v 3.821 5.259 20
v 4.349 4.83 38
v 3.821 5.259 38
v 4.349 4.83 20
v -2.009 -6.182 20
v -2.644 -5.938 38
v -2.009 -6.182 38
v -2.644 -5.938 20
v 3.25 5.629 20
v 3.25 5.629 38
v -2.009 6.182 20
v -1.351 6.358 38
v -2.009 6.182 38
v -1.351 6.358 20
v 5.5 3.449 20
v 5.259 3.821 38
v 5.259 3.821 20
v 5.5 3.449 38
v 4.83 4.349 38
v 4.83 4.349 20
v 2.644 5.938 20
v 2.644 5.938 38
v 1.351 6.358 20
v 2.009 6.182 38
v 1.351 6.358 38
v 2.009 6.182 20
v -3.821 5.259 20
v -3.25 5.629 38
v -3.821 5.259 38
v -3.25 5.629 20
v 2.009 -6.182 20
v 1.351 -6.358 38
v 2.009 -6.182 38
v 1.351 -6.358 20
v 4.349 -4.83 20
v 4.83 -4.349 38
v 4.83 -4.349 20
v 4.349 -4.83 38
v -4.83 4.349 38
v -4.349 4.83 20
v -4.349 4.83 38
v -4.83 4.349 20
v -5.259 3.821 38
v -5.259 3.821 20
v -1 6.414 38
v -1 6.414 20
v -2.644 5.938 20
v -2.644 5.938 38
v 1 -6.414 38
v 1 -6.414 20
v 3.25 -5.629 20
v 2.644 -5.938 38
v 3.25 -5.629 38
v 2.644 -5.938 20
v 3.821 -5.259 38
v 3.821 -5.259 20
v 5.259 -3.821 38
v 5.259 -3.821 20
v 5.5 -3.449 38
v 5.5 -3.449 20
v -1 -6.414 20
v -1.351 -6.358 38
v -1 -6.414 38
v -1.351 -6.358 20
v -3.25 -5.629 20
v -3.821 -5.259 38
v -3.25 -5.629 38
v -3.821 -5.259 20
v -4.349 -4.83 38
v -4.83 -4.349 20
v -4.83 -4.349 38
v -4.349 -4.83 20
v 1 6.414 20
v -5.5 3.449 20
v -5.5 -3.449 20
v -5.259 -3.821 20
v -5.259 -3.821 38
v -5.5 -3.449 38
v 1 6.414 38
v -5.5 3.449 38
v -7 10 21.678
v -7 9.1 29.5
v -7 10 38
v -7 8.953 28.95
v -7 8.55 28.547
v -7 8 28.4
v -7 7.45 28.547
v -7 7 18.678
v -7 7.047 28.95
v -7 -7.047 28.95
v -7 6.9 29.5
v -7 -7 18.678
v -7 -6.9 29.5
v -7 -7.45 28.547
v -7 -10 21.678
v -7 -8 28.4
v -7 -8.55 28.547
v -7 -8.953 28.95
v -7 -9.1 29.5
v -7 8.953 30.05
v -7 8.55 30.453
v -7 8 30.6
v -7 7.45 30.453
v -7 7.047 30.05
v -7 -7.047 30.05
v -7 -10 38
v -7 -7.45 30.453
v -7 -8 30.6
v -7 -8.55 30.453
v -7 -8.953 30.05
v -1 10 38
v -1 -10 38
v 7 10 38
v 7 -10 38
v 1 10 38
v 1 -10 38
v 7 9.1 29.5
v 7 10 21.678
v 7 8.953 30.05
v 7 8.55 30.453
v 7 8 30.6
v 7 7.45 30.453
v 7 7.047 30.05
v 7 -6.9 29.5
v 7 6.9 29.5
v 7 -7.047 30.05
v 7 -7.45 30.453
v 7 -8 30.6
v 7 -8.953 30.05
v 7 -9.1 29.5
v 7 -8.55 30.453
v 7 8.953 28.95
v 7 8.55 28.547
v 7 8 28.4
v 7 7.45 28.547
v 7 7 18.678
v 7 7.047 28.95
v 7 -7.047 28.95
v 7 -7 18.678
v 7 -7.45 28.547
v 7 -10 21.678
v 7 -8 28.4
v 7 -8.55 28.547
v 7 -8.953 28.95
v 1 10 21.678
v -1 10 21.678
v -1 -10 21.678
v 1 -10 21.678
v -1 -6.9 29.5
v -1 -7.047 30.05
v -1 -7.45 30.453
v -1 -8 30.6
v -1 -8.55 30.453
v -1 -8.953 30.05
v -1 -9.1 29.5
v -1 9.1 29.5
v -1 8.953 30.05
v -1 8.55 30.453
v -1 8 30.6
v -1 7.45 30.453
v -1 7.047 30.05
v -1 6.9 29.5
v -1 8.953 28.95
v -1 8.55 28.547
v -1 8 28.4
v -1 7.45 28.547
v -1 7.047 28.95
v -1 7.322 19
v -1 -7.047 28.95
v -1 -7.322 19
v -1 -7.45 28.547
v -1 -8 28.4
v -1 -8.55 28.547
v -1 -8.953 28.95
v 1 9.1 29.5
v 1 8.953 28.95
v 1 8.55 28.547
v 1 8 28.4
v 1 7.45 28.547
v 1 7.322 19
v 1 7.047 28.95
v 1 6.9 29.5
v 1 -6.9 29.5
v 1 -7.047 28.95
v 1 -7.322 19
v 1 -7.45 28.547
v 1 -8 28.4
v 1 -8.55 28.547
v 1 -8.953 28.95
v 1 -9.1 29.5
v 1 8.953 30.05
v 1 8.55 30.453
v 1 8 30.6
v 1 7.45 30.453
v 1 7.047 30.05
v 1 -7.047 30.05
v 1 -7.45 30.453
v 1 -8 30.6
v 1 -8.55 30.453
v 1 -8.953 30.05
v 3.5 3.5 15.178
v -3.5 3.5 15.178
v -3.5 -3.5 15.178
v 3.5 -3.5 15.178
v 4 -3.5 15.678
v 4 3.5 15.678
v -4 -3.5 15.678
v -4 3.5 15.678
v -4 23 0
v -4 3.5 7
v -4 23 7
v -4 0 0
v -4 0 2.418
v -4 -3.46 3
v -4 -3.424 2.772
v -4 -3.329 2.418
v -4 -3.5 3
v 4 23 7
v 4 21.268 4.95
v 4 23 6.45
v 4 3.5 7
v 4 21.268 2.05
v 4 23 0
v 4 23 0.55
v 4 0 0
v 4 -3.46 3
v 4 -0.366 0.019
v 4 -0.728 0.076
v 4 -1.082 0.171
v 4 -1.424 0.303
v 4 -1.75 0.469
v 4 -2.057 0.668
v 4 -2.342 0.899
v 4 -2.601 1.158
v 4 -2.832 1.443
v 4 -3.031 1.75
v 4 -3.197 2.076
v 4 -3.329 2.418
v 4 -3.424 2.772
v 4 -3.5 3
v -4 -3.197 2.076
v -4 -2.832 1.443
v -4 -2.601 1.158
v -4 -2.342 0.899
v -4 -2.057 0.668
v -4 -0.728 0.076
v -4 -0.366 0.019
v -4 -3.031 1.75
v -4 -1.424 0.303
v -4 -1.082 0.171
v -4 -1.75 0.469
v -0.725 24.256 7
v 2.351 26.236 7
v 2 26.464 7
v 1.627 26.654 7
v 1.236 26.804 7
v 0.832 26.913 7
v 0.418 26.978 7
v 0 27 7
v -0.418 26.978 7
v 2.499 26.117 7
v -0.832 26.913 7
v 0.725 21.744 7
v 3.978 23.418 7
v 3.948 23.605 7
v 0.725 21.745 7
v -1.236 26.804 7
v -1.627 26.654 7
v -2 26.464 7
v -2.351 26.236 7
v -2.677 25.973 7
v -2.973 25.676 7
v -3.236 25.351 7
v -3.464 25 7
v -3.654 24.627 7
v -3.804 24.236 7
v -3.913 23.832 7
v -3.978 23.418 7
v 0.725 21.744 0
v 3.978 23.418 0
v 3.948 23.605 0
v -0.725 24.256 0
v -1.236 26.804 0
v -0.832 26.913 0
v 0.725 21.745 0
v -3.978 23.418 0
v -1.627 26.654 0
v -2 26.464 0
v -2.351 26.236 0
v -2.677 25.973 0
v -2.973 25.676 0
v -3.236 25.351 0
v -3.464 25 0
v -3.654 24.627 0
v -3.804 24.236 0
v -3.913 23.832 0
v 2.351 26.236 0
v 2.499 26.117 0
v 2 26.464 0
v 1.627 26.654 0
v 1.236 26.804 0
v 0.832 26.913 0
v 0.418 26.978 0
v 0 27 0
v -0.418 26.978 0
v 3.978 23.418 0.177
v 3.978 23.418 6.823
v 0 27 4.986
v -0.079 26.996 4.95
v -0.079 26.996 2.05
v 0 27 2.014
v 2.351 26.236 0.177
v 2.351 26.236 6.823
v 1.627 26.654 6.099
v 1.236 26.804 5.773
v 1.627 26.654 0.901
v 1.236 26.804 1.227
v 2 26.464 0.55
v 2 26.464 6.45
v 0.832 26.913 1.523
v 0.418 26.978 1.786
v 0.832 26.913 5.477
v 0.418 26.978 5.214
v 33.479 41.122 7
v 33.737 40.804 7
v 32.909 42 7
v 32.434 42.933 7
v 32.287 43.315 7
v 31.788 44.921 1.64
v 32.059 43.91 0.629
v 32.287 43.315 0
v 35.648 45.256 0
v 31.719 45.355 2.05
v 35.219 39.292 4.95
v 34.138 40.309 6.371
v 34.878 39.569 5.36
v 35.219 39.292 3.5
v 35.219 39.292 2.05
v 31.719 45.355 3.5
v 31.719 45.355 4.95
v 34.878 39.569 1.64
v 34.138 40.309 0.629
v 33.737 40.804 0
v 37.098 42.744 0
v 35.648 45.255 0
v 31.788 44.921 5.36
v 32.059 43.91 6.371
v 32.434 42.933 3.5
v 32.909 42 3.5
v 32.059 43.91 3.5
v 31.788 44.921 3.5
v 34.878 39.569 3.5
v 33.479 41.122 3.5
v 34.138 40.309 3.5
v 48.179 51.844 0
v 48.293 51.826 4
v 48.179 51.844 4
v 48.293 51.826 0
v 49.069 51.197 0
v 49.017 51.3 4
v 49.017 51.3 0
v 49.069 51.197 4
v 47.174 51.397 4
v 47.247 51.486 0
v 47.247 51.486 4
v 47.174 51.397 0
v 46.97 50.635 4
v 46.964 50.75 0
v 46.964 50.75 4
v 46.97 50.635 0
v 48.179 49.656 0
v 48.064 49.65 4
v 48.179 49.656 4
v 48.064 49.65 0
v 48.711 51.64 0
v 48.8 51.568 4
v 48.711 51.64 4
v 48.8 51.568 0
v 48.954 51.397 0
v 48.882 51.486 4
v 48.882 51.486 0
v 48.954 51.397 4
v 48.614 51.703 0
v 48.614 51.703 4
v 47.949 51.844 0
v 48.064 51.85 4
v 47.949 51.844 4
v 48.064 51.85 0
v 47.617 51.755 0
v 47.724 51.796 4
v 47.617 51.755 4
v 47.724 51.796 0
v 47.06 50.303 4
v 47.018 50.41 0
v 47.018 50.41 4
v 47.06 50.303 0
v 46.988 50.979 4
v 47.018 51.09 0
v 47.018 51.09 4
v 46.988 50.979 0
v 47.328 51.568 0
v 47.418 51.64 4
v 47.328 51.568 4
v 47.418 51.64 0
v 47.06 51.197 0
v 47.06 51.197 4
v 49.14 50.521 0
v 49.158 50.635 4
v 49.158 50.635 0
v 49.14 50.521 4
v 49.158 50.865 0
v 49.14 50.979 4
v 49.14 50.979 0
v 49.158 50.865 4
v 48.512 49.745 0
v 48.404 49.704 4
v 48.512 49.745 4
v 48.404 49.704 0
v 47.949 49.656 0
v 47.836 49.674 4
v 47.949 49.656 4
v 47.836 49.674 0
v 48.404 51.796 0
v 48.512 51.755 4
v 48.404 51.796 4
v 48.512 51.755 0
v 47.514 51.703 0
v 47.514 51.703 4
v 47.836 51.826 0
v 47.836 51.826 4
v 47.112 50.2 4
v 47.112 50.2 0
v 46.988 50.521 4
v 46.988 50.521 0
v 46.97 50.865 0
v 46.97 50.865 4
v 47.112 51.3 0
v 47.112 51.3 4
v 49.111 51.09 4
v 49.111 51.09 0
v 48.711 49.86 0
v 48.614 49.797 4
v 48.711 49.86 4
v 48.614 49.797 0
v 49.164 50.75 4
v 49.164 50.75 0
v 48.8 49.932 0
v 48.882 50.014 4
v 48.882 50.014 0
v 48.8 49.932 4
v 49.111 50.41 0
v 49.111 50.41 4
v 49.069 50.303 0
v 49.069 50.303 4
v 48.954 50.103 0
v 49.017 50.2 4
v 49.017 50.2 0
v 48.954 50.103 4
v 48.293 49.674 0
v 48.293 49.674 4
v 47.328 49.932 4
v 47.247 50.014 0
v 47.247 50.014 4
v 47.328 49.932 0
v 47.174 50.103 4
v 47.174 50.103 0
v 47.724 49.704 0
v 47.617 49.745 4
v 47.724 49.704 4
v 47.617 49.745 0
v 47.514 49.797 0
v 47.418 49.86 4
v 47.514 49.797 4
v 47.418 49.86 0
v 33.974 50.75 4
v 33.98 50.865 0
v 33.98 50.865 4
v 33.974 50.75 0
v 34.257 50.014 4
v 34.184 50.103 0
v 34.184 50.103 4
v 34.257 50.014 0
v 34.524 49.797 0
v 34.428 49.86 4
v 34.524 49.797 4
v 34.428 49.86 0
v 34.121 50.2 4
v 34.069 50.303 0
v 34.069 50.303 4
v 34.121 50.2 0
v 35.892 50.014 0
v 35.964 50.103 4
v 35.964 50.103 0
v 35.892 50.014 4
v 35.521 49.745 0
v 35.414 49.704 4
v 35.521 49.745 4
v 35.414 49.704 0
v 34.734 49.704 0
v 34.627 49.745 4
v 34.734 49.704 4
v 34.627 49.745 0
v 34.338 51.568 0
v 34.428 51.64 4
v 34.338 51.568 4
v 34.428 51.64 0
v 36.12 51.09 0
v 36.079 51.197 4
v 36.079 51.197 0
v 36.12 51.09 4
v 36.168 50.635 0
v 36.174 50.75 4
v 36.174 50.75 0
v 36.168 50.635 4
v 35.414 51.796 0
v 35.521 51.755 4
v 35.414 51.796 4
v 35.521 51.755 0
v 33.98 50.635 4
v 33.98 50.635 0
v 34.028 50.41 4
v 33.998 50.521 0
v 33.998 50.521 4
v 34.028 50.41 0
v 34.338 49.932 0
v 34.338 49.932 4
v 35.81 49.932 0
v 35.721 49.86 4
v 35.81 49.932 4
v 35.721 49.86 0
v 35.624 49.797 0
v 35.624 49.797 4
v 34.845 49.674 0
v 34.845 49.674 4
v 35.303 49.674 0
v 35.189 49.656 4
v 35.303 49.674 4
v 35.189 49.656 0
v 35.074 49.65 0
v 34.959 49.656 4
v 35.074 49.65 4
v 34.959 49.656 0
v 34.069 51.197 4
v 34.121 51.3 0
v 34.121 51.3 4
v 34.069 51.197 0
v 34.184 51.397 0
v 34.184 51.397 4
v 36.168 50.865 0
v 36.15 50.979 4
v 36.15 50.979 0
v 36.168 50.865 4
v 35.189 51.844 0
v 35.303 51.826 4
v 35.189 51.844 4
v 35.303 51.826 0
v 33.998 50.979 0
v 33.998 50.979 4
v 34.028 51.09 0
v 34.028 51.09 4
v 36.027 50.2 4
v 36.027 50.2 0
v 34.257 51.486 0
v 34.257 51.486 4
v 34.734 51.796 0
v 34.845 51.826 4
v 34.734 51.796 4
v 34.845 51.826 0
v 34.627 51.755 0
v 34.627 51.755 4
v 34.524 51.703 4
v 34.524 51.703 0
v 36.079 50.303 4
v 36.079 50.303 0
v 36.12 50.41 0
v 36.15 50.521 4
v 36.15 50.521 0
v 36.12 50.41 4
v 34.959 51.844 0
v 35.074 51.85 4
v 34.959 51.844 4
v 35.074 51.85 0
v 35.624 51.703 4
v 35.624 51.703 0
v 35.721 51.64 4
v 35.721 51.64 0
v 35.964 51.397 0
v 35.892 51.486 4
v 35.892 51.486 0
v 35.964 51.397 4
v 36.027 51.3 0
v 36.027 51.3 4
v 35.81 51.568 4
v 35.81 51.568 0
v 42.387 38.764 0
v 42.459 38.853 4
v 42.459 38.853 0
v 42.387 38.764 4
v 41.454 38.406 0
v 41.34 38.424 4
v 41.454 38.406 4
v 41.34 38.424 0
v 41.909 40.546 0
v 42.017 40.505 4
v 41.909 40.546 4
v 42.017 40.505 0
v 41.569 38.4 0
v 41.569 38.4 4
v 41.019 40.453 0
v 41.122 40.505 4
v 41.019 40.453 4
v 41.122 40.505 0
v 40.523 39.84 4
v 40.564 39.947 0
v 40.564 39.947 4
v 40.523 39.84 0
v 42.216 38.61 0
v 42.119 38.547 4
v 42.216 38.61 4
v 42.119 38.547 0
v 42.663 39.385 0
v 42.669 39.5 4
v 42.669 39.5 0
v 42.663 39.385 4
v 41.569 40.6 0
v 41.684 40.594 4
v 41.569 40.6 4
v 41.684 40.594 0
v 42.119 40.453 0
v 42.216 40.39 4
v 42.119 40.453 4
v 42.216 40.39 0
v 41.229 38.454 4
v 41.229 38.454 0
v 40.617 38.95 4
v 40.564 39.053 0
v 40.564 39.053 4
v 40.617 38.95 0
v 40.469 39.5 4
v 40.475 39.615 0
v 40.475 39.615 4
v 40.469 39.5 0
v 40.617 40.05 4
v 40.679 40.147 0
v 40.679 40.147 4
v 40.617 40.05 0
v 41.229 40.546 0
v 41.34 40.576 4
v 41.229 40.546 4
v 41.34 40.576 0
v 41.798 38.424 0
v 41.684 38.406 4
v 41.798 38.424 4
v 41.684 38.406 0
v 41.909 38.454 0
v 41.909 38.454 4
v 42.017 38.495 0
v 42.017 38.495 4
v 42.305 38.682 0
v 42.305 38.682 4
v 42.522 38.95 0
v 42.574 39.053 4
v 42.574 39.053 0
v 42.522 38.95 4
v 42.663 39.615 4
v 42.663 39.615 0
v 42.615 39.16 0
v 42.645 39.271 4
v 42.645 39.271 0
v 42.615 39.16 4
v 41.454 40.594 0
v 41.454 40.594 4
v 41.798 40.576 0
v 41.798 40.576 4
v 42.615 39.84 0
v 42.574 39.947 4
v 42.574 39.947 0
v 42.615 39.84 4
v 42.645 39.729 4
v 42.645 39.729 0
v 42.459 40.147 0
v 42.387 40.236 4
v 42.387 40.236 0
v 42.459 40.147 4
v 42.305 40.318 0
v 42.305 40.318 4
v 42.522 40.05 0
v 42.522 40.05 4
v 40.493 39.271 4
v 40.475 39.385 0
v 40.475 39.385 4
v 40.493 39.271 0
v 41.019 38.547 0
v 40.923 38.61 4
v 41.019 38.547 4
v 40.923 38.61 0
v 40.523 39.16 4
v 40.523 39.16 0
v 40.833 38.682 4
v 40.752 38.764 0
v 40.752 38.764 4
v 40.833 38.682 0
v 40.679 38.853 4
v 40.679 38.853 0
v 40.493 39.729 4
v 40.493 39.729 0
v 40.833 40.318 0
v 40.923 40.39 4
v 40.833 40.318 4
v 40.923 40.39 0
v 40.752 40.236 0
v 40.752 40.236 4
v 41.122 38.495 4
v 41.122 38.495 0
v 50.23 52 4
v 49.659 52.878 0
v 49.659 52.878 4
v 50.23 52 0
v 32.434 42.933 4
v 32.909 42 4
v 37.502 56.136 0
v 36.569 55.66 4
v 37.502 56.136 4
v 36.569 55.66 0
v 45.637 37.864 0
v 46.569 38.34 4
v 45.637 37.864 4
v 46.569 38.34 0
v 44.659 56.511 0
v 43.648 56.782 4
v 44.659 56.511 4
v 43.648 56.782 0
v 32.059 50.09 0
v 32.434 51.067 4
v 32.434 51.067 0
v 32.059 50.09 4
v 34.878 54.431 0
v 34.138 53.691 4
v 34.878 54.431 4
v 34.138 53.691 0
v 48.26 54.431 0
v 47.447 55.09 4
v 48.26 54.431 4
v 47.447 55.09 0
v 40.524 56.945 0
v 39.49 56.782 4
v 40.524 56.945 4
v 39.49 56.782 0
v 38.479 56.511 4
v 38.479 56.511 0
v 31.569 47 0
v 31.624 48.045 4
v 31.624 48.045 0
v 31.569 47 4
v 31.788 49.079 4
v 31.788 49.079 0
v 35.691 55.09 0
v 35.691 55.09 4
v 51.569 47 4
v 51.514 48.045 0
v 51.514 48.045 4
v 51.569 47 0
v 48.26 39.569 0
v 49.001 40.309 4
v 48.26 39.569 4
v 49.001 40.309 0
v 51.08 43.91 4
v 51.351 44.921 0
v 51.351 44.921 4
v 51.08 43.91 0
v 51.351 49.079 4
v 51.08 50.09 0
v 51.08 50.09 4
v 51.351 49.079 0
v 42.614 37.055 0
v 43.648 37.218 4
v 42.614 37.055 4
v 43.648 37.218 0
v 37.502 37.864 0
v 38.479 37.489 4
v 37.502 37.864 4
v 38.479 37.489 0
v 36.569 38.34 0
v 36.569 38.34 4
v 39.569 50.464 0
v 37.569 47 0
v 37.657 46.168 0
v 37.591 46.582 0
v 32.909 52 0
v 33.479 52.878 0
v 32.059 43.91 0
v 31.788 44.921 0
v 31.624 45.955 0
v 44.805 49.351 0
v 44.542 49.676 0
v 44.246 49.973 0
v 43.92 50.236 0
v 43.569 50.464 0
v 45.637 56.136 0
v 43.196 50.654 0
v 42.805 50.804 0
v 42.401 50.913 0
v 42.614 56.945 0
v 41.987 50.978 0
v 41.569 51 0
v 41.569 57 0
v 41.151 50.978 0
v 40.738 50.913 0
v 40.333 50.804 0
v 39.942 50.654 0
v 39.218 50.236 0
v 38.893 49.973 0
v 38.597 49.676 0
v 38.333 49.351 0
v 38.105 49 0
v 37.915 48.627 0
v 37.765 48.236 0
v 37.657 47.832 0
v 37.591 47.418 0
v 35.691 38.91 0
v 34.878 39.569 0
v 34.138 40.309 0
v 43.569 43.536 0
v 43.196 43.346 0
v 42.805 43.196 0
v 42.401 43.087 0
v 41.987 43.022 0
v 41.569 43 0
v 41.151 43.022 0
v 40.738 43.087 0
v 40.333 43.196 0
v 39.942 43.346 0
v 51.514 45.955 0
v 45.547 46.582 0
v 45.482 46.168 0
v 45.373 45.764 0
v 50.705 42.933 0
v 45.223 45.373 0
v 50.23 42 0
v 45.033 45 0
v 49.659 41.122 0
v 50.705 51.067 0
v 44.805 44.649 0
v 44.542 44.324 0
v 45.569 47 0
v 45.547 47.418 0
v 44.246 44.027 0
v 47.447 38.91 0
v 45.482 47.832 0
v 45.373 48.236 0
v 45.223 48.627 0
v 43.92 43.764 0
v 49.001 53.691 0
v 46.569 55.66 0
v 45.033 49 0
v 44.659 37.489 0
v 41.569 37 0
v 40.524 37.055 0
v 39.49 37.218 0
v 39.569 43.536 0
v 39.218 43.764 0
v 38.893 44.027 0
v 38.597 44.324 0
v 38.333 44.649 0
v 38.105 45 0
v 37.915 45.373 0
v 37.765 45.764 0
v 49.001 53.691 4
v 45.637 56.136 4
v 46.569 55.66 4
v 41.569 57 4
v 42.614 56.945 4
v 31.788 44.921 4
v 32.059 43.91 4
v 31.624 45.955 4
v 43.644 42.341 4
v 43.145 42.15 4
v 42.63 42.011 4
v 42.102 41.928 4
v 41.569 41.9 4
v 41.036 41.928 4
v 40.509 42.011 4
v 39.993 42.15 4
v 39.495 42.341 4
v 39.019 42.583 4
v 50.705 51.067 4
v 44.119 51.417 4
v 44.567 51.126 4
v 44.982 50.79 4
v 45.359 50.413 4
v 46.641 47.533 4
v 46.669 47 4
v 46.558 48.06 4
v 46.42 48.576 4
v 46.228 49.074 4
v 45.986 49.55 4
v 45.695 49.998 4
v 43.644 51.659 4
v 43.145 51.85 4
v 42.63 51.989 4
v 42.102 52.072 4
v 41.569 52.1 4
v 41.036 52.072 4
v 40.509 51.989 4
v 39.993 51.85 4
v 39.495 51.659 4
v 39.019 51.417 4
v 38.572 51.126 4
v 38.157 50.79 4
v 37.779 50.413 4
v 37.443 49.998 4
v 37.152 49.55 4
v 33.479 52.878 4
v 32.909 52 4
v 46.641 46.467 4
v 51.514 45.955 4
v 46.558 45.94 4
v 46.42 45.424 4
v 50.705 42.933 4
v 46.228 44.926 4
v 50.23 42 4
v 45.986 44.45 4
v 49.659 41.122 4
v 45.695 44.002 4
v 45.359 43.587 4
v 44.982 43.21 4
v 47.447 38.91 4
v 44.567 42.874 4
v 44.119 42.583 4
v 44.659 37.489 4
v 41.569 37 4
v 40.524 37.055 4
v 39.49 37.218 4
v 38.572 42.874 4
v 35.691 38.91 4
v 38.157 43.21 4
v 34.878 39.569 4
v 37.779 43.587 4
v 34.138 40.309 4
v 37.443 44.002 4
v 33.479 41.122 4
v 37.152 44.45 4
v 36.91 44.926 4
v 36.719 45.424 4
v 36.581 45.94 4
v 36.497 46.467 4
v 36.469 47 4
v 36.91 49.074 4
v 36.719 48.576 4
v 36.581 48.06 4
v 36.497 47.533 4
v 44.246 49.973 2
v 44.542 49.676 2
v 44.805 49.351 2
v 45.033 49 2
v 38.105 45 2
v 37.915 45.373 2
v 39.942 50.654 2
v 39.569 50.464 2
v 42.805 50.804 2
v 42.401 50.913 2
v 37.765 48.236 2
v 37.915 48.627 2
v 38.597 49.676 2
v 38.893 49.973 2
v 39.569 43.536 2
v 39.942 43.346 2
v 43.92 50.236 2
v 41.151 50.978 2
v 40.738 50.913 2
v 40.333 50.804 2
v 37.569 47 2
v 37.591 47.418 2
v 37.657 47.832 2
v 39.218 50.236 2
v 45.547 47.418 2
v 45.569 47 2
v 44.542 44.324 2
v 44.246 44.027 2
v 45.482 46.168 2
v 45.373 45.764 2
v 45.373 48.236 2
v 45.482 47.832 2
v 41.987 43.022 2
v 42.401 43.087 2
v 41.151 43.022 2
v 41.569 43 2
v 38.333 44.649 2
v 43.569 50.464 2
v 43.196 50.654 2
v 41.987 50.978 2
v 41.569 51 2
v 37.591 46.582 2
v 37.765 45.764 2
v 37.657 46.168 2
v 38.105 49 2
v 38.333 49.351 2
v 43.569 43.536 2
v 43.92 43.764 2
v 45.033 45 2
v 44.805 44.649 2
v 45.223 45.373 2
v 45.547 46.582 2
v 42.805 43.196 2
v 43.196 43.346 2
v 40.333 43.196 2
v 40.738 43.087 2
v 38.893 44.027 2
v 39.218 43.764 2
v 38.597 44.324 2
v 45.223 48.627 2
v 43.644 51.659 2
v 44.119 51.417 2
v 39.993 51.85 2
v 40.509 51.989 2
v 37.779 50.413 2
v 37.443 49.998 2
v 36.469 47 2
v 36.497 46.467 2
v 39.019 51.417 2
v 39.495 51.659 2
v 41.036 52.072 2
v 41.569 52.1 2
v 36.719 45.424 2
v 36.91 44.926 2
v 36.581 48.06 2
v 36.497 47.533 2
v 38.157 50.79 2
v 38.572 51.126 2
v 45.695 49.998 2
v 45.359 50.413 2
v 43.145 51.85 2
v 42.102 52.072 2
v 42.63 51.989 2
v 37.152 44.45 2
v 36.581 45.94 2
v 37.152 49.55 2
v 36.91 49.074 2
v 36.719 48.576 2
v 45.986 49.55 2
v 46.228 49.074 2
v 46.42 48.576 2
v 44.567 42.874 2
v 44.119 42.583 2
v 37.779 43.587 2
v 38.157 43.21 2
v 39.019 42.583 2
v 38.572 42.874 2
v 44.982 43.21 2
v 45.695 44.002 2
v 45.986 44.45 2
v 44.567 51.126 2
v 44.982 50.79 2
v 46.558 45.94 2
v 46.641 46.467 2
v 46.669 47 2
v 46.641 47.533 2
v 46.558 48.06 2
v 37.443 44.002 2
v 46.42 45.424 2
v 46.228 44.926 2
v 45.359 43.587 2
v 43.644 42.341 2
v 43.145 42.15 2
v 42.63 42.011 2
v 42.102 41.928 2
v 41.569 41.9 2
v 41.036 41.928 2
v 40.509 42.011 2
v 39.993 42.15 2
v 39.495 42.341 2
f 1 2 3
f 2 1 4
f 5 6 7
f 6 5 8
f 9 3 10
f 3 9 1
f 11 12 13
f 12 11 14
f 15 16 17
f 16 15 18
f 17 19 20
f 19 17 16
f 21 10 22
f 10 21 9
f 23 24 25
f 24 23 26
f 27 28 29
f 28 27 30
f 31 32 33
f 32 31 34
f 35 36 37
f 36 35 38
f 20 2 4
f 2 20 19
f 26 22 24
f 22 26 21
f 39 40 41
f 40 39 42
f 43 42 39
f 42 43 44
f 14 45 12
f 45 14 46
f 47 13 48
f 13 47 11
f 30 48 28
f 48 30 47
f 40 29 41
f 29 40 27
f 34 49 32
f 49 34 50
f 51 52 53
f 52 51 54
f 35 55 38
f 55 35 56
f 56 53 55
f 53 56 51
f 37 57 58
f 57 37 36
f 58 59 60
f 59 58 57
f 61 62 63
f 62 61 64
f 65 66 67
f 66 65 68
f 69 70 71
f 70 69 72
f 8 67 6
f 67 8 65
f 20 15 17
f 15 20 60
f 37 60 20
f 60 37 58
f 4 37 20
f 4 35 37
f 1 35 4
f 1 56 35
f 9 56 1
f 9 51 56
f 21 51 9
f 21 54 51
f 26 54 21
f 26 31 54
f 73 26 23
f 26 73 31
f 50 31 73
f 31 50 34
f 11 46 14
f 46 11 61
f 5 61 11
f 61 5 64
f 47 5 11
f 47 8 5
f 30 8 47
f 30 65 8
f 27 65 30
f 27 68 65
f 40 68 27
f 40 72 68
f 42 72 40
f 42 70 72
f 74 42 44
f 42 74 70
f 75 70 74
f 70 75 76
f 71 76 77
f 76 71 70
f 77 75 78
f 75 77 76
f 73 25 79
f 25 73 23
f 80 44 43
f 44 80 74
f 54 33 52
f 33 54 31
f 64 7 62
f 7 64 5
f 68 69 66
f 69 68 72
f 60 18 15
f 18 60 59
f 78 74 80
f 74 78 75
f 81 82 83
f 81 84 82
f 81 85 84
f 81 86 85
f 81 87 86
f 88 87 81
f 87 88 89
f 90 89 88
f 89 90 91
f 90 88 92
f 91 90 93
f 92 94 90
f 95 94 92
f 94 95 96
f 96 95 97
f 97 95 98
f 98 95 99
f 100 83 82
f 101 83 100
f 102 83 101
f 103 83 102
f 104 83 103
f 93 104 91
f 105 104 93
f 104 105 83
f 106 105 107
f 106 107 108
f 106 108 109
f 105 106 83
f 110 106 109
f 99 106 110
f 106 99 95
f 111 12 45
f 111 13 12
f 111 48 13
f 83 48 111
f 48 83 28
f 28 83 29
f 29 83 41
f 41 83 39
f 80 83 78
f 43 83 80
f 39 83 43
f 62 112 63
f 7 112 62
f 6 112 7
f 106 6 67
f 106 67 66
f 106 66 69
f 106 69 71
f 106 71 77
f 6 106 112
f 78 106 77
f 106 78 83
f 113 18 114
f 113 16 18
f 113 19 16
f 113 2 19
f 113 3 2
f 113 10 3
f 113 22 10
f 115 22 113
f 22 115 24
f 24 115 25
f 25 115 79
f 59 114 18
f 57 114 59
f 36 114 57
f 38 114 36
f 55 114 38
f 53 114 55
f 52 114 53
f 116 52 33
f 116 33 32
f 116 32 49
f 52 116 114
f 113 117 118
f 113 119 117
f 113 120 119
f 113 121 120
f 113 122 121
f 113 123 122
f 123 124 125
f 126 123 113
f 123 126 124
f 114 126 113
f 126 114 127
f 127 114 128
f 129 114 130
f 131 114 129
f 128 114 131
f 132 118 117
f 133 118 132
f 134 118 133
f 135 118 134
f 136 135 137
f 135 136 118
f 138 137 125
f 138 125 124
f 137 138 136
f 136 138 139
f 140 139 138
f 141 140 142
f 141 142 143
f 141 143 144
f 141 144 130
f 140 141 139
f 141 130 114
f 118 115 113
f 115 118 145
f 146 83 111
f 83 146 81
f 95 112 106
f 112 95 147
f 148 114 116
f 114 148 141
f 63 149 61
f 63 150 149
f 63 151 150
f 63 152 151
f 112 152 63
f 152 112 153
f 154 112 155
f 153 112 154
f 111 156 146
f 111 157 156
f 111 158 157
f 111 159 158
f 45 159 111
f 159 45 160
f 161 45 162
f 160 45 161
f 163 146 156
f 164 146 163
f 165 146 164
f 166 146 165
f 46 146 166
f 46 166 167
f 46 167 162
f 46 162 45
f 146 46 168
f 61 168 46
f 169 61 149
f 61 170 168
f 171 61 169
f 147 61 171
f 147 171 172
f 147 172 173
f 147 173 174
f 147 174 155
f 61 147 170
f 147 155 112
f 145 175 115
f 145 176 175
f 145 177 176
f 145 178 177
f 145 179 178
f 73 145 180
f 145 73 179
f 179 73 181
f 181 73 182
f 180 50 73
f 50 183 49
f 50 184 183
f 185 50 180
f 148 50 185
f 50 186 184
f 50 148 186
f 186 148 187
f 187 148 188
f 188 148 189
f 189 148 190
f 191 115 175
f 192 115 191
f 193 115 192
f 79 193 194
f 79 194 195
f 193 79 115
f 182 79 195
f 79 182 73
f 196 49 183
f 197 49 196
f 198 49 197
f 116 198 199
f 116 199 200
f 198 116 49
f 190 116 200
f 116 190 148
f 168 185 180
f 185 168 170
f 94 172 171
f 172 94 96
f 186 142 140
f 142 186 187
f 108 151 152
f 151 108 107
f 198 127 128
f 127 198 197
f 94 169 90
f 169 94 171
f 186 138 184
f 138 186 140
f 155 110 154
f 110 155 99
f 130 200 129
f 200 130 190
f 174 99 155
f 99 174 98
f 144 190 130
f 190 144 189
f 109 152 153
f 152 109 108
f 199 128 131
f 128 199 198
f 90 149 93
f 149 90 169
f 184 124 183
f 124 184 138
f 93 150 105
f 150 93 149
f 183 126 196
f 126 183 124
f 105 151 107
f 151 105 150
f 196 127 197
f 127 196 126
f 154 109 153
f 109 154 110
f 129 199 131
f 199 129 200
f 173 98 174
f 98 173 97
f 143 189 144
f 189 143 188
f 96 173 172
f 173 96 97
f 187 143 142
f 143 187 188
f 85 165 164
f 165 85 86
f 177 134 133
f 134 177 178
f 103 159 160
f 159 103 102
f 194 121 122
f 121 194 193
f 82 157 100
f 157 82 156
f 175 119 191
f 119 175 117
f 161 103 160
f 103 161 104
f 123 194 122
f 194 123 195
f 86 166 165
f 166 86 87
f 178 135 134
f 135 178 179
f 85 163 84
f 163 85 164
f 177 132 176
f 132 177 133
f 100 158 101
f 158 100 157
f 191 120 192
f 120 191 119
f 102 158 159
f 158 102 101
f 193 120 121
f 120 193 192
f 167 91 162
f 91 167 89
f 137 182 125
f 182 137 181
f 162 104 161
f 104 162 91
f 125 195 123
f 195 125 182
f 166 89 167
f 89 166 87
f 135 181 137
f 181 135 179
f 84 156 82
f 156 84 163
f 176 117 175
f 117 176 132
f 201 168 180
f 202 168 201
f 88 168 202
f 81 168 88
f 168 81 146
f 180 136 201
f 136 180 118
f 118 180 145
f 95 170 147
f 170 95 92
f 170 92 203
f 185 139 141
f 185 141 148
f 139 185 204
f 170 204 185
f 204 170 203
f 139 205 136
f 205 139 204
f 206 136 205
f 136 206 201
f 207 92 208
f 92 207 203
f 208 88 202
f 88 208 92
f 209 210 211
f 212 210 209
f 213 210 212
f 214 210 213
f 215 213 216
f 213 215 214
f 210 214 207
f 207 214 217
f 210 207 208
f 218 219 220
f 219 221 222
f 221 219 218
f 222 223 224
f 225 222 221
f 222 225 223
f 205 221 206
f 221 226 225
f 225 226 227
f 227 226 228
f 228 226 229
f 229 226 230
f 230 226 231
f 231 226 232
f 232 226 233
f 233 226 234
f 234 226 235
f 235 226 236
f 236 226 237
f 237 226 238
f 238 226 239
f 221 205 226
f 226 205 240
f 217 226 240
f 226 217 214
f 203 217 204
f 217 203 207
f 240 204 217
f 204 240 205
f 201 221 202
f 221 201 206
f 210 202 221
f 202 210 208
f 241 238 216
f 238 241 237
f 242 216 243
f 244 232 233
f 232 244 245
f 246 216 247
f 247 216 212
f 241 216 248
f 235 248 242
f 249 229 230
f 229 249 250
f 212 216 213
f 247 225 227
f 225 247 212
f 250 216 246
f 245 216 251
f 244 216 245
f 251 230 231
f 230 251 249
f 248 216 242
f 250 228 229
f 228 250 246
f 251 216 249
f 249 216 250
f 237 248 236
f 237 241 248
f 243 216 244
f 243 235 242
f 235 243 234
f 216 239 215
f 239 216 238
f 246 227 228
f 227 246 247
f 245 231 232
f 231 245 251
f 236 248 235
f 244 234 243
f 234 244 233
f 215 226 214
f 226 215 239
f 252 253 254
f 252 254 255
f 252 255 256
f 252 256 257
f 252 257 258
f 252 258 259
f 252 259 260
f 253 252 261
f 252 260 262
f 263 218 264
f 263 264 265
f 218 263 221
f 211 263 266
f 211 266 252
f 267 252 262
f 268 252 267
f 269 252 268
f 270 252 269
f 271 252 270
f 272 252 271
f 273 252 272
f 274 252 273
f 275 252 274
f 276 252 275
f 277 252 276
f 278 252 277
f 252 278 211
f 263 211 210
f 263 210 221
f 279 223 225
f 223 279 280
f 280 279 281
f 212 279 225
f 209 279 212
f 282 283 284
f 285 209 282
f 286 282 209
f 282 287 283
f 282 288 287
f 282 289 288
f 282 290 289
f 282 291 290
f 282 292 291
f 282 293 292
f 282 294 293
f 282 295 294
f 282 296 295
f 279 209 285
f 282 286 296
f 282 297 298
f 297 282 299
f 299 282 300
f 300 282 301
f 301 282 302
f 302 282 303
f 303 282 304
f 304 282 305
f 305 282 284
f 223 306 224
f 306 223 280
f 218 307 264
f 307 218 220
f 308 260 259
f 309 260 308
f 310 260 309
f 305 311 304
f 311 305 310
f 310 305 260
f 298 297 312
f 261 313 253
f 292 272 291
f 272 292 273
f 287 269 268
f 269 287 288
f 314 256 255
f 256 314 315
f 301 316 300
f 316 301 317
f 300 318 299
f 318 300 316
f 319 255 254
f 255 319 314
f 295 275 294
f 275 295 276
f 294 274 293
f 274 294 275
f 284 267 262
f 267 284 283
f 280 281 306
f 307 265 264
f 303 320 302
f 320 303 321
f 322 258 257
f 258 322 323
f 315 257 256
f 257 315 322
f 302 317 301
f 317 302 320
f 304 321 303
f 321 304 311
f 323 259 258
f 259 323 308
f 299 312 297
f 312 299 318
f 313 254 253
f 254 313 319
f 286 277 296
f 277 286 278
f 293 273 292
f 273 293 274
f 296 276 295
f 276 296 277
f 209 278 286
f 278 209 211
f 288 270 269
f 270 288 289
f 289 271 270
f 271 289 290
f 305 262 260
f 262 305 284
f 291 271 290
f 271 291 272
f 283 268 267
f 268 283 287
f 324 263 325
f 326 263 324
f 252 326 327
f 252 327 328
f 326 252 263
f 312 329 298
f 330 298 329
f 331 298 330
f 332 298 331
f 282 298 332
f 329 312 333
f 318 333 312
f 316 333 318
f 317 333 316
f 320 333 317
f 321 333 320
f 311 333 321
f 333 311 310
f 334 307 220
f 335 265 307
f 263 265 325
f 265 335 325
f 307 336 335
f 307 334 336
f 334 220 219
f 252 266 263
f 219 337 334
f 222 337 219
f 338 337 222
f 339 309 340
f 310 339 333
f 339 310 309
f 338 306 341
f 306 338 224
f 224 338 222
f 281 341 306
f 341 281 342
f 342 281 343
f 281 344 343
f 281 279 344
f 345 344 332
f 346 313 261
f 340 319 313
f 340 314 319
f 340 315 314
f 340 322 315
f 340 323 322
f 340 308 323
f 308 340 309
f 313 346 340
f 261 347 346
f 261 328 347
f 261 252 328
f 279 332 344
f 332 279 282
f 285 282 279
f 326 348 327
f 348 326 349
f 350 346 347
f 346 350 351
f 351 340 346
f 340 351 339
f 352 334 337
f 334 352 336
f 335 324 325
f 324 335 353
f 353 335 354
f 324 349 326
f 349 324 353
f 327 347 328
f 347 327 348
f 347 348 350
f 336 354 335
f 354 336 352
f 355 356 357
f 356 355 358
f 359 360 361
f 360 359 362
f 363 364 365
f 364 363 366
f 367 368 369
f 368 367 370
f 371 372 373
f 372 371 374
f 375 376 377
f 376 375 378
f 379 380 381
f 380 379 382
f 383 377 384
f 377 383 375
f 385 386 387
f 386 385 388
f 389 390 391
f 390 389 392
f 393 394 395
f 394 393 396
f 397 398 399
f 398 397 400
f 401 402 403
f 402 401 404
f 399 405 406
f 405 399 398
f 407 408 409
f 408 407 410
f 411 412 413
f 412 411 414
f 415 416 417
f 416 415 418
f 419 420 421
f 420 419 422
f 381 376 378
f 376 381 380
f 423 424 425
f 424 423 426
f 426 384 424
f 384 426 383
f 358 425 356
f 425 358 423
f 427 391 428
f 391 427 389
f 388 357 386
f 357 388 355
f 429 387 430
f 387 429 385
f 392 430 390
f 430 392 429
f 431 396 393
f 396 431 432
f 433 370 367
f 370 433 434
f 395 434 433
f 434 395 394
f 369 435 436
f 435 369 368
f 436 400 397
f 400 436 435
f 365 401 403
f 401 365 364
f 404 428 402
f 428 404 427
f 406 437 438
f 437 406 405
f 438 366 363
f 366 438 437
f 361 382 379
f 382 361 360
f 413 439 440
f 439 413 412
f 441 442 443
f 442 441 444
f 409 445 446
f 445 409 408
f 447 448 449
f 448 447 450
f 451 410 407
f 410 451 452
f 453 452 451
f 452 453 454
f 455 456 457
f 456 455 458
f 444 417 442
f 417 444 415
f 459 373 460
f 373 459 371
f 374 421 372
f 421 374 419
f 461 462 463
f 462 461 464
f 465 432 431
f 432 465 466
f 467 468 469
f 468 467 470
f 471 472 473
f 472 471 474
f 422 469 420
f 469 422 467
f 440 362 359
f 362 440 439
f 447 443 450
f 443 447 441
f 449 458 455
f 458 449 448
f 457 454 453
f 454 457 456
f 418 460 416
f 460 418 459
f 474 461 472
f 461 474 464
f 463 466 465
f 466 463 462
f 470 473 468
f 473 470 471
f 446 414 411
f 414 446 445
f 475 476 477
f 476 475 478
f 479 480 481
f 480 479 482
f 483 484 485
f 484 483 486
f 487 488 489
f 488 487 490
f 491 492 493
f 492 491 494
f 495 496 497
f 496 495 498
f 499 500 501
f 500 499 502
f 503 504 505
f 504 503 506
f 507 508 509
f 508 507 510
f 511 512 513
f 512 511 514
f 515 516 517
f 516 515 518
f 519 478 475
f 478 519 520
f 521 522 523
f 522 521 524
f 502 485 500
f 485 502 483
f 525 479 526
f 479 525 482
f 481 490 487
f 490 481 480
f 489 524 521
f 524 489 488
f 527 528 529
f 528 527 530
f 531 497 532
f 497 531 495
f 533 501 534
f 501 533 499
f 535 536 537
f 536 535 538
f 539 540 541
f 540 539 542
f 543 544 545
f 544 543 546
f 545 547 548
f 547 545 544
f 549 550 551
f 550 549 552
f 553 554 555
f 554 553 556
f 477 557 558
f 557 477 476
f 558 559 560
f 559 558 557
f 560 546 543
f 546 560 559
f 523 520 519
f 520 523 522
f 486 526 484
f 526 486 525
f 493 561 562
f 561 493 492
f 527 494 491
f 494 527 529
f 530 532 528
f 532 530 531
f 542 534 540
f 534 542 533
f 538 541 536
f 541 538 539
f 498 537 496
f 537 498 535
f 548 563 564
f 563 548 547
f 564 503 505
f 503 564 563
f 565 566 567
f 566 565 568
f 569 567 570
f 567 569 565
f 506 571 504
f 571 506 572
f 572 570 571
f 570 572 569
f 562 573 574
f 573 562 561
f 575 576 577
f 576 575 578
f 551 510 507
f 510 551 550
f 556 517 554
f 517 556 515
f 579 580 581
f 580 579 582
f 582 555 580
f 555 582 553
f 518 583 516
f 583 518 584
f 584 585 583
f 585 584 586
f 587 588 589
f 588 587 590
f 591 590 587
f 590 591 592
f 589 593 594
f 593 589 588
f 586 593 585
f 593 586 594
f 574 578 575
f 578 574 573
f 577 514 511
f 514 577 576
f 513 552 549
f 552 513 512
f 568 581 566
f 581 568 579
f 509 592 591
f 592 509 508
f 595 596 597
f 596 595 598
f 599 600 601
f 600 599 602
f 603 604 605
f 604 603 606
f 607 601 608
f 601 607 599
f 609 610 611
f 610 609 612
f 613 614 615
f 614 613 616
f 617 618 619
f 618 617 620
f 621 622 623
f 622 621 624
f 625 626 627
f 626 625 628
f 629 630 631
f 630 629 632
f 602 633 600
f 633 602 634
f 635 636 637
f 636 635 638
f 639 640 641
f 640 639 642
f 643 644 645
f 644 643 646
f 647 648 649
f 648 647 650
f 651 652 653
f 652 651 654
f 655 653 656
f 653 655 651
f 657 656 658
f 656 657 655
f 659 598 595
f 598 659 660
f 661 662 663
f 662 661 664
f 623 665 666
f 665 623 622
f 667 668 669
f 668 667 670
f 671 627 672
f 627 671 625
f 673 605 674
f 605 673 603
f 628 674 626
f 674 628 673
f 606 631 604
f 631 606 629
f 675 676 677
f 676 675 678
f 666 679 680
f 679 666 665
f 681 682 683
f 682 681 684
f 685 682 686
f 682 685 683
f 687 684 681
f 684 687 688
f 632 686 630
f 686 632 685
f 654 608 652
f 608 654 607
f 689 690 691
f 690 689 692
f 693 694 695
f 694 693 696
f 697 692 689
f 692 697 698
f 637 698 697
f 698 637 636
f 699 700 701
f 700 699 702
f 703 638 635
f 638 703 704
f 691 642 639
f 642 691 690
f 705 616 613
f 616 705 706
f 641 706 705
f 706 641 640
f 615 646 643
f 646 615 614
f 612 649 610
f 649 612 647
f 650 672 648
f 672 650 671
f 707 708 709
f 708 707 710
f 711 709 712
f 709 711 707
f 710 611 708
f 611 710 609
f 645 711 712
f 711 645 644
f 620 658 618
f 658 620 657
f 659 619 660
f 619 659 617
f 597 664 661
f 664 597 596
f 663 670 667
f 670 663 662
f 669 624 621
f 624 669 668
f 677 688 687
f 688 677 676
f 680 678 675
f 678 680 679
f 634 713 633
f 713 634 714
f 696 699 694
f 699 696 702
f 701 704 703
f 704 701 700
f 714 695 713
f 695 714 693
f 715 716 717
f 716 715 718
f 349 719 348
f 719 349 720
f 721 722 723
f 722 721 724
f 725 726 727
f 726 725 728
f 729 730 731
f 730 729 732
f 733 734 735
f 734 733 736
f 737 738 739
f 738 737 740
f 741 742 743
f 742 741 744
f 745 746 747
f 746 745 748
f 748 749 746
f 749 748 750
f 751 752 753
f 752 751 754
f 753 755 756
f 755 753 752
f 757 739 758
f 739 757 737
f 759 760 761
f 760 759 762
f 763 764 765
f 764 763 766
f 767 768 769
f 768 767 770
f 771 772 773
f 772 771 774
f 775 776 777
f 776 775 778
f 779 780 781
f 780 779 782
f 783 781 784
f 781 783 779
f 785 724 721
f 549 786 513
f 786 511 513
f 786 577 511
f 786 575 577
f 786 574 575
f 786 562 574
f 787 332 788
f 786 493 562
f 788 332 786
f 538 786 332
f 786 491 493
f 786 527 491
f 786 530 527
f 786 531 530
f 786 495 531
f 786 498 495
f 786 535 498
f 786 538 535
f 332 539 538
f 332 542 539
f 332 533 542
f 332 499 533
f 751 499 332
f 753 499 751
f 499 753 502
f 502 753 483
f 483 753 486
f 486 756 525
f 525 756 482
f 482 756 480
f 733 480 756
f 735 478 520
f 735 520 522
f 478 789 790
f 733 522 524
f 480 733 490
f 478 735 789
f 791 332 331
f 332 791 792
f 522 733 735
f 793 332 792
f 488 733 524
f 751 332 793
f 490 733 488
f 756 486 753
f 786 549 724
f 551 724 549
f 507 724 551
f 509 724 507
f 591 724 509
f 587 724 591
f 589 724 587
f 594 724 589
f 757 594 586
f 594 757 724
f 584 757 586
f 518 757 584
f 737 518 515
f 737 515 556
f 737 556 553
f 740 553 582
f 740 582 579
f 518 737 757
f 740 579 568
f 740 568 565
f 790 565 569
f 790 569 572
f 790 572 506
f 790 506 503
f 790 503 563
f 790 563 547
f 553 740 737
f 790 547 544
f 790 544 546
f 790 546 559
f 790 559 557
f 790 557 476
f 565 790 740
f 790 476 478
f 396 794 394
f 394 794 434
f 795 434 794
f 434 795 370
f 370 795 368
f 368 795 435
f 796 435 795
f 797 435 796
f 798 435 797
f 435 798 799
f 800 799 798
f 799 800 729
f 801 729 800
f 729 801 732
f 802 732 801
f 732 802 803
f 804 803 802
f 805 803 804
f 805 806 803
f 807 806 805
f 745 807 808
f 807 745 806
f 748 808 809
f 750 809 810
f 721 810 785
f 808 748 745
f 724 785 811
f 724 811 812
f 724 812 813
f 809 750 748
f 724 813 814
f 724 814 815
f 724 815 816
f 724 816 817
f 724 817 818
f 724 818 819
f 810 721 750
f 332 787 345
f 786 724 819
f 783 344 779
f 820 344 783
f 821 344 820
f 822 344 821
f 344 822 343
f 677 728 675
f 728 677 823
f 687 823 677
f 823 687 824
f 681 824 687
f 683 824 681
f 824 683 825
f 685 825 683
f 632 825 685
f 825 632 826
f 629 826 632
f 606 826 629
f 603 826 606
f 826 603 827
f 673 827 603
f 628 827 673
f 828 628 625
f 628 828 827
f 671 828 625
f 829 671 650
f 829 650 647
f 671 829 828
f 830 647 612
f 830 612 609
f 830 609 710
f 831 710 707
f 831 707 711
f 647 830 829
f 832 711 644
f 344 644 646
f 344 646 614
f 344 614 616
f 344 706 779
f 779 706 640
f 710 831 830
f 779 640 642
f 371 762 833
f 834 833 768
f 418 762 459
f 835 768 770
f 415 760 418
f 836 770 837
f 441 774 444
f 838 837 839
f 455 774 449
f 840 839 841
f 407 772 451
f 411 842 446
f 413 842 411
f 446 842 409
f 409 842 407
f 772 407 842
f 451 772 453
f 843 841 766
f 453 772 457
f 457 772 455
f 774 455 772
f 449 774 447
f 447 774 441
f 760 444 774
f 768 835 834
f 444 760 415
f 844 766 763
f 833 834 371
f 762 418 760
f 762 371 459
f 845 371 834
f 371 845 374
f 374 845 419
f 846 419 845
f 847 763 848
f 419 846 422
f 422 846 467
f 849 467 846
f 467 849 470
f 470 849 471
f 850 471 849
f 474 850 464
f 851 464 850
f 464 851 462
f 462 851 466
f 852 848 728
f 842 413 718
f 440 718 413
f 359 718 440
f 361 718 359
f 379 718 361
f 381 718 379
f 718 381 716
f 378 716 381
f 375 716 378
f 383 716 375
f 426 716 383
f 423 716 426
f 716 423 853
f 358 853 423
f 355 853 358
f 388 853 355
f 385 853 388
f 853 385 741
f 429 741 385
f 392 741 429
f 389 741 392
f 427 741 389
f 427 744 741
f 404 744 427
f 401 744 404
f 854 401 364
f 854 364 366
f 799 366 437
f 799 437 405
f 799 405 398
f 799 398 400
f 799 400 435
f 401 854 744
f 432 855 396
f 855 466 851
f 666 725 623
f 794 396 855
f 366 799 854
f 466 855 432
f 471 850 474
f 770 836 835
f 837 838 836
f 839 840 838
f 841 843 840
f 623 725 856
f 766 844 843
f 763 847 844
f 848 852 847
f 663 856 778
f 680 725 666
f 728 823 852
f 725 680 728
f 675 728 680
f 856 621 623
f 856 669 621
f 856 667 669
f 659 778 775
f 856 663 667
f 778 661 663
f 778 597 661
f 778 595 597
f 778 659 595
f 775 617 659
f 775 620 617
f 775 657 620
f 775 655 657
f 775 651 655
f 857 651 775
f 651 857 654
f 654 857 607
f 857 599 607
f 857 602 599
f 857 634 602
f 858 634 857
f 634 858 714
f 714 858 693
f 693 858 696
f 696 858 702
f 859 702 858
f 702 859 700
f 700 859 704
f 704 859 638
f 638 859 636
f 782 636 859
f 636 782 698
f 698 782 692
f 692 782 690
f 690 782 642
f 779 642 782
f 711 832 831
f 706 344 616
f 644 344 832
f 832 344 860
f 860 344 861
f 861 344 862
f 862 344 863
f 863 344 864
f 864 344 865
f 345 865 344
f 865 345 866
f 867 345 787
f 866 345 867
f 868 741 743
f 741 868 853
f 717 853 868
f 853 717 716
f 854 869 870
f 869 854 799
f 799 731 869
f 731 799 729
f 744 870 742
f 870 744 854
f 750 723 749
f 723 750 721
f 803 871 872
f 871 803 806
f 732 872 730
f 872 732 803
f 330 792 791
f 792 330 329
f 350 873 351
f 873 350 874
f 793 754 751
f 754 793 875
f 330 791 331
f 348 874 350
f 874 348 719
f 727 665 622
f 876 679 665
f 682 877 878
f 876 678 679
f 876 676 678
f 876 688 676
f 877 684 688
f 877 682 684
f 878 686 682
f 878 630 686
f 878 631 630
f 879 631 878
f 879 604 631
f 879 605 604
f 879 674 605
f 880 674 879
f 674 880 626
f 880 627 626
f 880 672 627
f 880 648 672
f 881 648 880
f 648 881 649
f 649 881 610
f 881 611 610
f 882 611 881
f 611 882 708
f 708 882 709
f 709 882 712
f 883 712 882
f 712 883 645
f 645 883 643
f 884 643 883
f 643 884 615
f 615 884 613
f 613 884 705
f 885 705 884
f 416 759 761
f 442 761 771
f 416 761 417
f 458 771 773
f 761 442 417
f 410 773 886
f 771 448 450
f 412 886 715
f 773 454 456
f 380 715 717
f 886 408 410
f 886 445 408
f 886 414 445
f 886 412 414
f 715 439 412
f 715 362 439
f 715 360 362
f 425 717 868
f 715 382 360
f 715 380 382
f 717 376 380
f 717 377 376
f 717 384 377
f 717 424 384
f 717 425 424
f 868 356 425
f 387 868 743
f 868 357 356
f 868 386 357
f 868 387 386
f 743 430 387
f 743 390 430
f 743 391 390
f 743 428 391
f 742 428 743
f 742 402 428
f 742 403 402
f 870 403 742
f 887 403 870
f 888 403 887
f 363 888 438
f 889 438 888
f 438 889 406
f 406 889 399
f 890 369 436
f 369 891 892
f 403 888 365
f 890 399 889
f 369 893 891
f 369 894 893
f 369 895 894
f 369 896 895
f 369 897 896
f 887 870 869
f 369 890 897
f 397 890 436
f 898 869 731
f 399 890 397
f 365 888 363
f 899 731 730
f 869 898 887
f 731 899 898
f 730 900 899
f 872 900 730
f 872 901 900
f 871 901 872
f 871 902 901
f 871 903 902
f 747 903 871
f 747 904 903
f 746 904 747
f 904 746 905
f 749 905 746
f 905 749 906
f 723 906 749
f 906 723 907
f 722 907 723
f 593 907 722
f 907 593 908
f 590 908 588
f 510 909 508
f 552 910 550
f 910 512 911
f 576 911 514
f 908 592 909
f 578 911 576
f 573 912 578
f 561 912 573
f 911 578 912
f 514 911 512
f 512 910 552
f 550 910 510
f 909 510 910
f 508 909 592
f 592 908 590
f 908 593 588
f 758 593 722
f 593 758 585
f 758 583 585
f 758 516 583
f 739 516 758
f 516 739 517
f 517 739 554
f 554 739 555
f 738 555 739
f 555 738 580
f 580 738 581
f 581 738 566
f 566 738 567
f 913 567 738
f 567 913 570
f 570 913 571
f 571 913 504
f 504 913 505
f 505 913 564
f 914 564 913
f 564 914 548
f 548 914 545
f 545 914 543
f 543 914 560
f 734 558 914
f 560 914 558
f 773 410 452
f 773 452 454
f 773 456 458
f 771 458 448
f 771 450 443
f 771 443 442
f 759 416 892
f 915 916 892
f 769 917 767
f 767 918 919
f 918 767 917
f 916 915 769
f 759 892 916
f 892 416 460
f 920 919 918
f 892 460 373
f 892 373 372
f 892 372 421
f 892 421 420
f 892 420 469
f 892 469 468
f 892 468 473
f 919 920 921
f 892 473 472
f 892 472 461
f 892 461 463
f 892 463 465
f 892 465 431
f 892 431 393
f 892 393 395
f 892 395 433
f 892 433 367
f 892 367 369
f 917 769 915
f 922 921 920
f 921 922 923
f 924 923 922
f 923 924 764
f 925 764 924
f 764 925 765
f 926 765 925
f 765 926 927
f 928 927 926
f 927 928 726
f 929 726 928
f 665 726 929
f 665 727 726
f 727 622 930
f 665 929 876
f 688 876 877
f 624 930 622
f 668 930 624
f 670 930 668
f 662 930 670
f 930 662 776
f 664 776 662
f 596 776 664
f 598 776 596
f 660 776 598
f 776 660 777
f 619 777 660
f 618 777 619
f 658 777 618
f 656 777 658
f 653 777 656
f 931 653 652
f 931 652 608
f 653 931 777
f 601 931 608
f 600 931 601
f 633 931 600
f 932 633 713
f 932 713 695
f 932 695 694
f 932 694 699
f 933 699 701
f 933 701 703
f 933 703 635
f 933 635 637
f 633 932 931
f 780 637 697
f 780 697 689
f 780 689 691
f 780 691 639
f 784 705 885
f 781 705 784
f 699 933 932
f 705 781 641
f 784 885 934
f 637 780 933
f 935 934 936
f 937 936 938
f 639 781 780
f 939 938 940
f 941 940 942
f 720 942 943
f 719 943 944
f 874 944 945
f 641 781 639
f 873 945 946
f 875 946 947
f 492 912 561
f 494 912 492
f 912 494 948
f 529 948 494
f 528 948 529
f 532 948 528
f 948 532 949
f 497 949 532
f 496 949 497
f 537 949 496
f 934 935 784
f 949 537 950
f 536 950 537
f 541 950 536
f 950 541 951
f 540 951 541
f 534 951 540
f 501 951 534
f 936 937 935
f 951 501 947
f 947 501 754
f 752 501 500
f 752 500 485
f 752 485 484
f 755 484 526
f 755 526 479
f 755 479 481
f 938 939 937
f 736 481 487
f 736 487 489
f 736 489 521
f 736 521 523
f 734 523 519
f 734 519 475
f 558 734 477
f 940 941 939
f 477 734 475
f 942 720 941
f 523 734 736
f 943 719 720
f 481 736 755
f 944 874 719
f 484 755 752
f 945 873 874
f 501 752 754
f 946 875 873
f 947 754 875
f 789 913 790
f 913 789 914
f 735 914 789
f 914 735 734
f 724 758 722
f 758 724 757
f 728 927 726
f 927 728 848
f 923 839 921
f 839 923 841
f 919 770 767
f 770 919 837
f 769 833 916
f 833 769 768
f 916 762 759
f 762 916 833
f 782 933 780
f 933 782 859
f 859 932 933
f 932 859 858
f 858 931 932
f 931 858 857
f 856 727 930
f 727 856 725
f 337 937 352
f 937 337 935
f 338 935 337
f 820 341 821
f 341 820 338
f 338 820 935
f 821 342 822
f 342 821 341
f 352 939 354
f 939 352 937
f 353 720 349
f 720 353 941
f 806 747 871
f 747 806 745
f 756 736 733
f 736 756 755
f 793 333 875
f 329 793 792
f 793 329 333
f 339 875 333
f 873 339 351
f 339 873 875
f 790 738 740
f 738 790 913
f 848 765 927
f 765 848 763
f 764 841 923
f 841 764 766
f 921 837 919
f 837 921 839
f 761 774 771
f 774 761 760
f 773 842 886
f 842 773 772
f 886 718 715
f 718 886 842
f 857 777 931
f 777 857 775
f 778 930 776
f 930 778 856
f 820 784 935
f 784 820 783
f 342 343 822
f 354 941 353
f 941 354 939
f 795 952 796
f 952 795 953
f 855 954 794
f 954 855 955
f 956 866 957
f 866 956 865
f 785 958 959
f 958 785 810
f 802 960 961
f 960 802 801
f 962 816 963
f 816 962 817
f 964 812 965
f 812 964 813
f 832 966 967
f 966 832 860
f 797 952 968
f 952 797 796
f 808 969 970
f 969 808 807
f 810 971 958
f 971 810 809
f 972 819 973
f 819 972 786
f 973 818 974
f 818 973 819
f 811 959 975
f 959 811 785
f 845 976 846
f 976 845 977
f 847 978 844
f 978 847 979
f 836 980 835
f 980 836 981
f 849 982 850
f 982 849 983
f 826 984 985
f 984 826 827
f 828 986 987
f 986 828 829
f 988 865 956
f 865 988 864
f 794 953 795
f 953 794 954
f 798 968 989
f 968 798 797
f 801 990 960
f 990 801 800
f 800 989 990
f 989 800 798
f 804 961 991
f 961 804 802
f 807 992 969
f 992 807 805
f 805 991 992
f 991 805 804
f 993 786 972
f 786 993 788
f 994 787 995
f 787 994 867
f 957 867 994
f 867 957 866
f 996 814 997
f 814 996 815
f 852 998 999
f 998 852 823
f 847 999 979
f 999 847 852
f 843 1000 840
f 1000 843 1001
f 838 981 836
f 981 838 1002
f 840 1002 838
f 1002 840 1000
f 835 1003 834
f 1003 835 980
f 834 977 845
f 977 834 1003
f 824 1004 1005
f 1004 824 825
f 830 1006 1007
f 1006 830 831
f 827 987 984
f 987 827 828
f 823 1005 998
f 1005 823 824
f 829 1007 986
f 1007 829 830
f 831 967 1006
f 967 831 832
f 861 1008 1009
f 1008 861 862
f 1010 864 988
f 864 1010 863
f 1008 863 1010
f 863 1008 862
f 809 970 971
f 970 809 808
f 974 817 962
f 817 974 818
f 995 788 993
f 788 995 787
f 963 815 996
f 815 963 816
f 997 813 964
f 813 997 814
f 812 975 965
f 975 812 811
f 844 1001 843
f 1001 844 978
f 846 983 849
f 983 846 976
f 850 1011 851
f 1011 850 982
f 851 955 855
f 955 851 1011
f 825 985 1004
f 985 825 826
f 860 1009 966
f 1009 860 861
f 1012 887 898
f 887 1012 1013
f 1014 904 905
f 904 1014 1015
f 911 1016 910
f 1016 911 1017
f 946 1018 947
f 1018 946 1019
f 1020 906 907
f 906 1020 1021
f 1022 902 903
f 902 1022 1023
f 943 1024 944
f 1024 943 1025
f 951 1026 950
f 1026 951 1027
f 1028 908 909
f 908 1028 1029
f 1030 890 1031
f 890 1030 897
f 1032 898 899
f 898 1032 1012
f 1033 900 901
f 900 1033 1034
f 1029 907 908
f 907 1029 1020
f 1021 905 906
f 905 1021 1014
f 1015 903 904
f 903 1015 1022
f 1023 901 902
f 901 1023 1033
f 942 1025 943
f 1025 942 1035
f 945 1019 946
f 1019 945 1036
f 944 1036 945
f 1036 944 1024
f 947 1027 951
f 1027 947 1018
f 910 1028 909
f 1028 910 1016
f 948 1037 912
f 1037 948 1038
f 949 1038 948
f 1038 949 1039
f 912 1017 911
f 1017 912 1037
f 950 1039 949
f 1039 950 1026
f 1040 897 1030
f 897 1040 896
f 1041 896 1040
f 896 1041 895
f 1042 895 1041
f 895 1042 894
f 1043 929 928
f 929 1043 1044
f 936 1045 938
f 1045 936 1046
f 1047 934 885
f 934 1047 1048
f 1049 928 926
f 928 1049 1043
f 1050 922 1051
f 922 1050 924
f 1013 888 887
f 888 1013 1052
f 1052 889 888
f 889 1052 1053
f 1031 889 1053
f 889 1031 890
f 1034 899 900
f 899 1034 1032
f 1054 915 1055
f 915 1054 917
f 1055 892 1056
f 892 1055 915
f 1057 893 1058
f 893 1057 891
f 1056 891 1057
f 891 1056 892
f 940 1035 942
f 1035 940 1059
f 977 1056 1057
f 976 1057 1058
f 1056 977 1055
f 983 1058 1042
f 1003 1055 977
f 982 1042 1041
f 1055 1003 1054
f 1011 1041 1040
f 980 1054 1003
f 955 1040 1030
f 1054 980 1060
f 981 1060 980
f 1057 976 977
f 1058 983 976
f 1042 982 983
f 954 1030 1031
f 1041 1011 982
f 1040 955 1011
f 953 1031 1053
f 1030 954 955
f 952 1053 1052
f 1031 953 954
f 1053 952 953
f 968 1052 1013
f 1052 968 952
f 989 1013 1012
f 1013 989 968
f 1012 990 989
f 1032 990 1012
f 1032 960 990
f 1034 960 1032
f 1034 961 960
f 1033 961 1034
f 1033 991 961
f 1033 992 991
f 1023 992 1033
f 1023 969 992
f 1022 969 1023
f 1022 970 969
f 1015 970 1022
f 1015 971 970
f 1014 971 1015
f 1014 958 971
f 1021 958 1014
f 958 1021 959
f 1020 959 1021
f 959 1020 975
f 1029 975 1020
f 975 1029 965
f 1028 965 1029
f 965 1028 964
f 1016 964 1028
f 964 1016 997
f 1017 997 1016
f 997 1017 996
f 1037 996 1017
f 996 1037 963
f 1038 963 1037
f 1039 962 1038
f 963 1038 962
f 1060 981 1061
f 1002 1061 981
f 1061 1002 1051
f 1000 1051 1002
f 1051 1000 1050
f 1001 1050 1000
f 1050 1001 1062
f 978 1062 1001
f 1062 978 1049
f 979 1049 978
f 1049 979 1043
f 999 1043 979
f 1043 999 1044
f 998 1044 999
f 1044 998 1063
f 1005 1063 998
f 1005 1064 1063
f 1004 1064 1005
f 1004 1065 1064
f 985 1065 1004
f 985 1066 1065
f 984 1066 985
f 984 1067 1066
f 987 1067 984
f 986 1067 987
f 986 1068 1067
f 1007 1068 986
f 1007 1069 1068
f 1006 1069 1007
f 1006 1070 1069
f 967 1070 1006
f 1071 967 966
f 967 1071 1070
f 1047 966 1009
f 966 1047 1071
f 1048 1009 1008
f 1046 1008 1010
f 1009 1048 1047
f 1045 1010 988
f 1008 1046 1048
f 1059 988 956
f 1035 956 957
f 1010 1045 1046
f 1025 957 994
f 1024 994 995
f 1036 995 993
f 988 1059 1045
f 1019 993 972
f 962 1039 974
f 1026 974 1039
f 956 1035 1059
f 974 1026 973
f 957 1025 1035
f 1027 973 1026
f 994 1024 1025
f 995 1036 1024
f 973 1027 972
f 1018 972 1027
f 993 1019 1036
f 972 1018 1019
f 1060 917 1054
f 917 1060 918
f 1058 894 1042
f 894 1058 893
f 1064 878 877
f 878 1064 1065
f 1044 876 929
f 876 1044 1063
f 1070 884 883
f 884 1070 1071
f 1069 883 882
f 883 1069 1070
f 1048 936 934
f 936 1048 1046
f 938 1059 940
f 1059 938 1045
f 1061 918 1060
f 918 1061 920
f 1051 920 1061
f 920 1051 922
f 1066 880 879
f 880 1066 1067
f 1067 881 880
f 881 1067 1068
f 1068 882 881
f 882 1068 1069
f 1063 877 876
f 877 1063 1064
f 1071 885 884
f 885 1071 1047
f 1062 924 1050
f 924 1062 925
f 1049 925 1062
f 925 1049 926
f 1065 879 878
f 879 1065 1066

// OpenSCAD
$fn=60;

translate([0,0,15])clamp();

bracket();

difference(){
translate([0,23,0])rotate([0,0,30])
bar(42);
translate([0,23,3.5])rotate([0,0,30])translate([48,0,0])
cylinder(d=20,h=7);
}

translate([0,23,0])rotate([0,0,30])translate([48,0,0])
pin();

module pin(){
difference(){
cylinder(d=20,h=4);
translate([0,0,-1])cylinder(d=8,h=9);
translate([0,0,2])cylinder(d=10.2,h=9);
for(i=[0:120:240]){
    rotate([0,0,i])
    translate([7.5,0,-1])cylinder(d=2.2,h=7);
}
}
}

module bracket(){
translate([-4,-3.5,3])cube([8,7,13]);
translate([-4,0,3.5])rotate([0,90,0])cylinder(d=7,h=8);
translate([-4,0,0])cube([8,23,7]);
translate([0,23,0])cylinder(d=8,h=7);    
}

module clamp(){
difference(){
translate([-7,-10,0])
cube([14,20,23]);
difference(){
    translate([0,0,5])cylinder(d=13,h=25,$fn=60);
    translate([6.5,0,12])cube([2,12,25],center=true);
    translate([-6.5,0,12])cube([2,12,25],center=true);
}
translate([-1,-11,4])cube([2,22,25]);
translate([-9,-8,14.5])rotate([0,90,0])
cylinder(d=2.2,h=21,$fn=12);
translate([-9,8,14.5])rotate([0,90,0])
cylinder(d=2.2,h=21,$fn=12);
translate([0,21,0])rotate([45,0,0])cube(size=[25,25,25],center=true);
translate([0,-21,0])rotate([45,0,0])cube(size=[25,25,25],center=true);
translate([21,0,0])rotate([0,0,90])rotate([45,0,0])
cube(size=[25,25,25],center=true);
translate([-21,0,0])rotate([0,0,90])rotate([45,0,0])
cube(size=[25,25,25],center=true);
}
}

module bar(length){
translate([0,0,3.5])rotate([360/16,0,0])rotate([0,90,0])
    cylinder(d=7.577,h=length,$fn=8);
}
